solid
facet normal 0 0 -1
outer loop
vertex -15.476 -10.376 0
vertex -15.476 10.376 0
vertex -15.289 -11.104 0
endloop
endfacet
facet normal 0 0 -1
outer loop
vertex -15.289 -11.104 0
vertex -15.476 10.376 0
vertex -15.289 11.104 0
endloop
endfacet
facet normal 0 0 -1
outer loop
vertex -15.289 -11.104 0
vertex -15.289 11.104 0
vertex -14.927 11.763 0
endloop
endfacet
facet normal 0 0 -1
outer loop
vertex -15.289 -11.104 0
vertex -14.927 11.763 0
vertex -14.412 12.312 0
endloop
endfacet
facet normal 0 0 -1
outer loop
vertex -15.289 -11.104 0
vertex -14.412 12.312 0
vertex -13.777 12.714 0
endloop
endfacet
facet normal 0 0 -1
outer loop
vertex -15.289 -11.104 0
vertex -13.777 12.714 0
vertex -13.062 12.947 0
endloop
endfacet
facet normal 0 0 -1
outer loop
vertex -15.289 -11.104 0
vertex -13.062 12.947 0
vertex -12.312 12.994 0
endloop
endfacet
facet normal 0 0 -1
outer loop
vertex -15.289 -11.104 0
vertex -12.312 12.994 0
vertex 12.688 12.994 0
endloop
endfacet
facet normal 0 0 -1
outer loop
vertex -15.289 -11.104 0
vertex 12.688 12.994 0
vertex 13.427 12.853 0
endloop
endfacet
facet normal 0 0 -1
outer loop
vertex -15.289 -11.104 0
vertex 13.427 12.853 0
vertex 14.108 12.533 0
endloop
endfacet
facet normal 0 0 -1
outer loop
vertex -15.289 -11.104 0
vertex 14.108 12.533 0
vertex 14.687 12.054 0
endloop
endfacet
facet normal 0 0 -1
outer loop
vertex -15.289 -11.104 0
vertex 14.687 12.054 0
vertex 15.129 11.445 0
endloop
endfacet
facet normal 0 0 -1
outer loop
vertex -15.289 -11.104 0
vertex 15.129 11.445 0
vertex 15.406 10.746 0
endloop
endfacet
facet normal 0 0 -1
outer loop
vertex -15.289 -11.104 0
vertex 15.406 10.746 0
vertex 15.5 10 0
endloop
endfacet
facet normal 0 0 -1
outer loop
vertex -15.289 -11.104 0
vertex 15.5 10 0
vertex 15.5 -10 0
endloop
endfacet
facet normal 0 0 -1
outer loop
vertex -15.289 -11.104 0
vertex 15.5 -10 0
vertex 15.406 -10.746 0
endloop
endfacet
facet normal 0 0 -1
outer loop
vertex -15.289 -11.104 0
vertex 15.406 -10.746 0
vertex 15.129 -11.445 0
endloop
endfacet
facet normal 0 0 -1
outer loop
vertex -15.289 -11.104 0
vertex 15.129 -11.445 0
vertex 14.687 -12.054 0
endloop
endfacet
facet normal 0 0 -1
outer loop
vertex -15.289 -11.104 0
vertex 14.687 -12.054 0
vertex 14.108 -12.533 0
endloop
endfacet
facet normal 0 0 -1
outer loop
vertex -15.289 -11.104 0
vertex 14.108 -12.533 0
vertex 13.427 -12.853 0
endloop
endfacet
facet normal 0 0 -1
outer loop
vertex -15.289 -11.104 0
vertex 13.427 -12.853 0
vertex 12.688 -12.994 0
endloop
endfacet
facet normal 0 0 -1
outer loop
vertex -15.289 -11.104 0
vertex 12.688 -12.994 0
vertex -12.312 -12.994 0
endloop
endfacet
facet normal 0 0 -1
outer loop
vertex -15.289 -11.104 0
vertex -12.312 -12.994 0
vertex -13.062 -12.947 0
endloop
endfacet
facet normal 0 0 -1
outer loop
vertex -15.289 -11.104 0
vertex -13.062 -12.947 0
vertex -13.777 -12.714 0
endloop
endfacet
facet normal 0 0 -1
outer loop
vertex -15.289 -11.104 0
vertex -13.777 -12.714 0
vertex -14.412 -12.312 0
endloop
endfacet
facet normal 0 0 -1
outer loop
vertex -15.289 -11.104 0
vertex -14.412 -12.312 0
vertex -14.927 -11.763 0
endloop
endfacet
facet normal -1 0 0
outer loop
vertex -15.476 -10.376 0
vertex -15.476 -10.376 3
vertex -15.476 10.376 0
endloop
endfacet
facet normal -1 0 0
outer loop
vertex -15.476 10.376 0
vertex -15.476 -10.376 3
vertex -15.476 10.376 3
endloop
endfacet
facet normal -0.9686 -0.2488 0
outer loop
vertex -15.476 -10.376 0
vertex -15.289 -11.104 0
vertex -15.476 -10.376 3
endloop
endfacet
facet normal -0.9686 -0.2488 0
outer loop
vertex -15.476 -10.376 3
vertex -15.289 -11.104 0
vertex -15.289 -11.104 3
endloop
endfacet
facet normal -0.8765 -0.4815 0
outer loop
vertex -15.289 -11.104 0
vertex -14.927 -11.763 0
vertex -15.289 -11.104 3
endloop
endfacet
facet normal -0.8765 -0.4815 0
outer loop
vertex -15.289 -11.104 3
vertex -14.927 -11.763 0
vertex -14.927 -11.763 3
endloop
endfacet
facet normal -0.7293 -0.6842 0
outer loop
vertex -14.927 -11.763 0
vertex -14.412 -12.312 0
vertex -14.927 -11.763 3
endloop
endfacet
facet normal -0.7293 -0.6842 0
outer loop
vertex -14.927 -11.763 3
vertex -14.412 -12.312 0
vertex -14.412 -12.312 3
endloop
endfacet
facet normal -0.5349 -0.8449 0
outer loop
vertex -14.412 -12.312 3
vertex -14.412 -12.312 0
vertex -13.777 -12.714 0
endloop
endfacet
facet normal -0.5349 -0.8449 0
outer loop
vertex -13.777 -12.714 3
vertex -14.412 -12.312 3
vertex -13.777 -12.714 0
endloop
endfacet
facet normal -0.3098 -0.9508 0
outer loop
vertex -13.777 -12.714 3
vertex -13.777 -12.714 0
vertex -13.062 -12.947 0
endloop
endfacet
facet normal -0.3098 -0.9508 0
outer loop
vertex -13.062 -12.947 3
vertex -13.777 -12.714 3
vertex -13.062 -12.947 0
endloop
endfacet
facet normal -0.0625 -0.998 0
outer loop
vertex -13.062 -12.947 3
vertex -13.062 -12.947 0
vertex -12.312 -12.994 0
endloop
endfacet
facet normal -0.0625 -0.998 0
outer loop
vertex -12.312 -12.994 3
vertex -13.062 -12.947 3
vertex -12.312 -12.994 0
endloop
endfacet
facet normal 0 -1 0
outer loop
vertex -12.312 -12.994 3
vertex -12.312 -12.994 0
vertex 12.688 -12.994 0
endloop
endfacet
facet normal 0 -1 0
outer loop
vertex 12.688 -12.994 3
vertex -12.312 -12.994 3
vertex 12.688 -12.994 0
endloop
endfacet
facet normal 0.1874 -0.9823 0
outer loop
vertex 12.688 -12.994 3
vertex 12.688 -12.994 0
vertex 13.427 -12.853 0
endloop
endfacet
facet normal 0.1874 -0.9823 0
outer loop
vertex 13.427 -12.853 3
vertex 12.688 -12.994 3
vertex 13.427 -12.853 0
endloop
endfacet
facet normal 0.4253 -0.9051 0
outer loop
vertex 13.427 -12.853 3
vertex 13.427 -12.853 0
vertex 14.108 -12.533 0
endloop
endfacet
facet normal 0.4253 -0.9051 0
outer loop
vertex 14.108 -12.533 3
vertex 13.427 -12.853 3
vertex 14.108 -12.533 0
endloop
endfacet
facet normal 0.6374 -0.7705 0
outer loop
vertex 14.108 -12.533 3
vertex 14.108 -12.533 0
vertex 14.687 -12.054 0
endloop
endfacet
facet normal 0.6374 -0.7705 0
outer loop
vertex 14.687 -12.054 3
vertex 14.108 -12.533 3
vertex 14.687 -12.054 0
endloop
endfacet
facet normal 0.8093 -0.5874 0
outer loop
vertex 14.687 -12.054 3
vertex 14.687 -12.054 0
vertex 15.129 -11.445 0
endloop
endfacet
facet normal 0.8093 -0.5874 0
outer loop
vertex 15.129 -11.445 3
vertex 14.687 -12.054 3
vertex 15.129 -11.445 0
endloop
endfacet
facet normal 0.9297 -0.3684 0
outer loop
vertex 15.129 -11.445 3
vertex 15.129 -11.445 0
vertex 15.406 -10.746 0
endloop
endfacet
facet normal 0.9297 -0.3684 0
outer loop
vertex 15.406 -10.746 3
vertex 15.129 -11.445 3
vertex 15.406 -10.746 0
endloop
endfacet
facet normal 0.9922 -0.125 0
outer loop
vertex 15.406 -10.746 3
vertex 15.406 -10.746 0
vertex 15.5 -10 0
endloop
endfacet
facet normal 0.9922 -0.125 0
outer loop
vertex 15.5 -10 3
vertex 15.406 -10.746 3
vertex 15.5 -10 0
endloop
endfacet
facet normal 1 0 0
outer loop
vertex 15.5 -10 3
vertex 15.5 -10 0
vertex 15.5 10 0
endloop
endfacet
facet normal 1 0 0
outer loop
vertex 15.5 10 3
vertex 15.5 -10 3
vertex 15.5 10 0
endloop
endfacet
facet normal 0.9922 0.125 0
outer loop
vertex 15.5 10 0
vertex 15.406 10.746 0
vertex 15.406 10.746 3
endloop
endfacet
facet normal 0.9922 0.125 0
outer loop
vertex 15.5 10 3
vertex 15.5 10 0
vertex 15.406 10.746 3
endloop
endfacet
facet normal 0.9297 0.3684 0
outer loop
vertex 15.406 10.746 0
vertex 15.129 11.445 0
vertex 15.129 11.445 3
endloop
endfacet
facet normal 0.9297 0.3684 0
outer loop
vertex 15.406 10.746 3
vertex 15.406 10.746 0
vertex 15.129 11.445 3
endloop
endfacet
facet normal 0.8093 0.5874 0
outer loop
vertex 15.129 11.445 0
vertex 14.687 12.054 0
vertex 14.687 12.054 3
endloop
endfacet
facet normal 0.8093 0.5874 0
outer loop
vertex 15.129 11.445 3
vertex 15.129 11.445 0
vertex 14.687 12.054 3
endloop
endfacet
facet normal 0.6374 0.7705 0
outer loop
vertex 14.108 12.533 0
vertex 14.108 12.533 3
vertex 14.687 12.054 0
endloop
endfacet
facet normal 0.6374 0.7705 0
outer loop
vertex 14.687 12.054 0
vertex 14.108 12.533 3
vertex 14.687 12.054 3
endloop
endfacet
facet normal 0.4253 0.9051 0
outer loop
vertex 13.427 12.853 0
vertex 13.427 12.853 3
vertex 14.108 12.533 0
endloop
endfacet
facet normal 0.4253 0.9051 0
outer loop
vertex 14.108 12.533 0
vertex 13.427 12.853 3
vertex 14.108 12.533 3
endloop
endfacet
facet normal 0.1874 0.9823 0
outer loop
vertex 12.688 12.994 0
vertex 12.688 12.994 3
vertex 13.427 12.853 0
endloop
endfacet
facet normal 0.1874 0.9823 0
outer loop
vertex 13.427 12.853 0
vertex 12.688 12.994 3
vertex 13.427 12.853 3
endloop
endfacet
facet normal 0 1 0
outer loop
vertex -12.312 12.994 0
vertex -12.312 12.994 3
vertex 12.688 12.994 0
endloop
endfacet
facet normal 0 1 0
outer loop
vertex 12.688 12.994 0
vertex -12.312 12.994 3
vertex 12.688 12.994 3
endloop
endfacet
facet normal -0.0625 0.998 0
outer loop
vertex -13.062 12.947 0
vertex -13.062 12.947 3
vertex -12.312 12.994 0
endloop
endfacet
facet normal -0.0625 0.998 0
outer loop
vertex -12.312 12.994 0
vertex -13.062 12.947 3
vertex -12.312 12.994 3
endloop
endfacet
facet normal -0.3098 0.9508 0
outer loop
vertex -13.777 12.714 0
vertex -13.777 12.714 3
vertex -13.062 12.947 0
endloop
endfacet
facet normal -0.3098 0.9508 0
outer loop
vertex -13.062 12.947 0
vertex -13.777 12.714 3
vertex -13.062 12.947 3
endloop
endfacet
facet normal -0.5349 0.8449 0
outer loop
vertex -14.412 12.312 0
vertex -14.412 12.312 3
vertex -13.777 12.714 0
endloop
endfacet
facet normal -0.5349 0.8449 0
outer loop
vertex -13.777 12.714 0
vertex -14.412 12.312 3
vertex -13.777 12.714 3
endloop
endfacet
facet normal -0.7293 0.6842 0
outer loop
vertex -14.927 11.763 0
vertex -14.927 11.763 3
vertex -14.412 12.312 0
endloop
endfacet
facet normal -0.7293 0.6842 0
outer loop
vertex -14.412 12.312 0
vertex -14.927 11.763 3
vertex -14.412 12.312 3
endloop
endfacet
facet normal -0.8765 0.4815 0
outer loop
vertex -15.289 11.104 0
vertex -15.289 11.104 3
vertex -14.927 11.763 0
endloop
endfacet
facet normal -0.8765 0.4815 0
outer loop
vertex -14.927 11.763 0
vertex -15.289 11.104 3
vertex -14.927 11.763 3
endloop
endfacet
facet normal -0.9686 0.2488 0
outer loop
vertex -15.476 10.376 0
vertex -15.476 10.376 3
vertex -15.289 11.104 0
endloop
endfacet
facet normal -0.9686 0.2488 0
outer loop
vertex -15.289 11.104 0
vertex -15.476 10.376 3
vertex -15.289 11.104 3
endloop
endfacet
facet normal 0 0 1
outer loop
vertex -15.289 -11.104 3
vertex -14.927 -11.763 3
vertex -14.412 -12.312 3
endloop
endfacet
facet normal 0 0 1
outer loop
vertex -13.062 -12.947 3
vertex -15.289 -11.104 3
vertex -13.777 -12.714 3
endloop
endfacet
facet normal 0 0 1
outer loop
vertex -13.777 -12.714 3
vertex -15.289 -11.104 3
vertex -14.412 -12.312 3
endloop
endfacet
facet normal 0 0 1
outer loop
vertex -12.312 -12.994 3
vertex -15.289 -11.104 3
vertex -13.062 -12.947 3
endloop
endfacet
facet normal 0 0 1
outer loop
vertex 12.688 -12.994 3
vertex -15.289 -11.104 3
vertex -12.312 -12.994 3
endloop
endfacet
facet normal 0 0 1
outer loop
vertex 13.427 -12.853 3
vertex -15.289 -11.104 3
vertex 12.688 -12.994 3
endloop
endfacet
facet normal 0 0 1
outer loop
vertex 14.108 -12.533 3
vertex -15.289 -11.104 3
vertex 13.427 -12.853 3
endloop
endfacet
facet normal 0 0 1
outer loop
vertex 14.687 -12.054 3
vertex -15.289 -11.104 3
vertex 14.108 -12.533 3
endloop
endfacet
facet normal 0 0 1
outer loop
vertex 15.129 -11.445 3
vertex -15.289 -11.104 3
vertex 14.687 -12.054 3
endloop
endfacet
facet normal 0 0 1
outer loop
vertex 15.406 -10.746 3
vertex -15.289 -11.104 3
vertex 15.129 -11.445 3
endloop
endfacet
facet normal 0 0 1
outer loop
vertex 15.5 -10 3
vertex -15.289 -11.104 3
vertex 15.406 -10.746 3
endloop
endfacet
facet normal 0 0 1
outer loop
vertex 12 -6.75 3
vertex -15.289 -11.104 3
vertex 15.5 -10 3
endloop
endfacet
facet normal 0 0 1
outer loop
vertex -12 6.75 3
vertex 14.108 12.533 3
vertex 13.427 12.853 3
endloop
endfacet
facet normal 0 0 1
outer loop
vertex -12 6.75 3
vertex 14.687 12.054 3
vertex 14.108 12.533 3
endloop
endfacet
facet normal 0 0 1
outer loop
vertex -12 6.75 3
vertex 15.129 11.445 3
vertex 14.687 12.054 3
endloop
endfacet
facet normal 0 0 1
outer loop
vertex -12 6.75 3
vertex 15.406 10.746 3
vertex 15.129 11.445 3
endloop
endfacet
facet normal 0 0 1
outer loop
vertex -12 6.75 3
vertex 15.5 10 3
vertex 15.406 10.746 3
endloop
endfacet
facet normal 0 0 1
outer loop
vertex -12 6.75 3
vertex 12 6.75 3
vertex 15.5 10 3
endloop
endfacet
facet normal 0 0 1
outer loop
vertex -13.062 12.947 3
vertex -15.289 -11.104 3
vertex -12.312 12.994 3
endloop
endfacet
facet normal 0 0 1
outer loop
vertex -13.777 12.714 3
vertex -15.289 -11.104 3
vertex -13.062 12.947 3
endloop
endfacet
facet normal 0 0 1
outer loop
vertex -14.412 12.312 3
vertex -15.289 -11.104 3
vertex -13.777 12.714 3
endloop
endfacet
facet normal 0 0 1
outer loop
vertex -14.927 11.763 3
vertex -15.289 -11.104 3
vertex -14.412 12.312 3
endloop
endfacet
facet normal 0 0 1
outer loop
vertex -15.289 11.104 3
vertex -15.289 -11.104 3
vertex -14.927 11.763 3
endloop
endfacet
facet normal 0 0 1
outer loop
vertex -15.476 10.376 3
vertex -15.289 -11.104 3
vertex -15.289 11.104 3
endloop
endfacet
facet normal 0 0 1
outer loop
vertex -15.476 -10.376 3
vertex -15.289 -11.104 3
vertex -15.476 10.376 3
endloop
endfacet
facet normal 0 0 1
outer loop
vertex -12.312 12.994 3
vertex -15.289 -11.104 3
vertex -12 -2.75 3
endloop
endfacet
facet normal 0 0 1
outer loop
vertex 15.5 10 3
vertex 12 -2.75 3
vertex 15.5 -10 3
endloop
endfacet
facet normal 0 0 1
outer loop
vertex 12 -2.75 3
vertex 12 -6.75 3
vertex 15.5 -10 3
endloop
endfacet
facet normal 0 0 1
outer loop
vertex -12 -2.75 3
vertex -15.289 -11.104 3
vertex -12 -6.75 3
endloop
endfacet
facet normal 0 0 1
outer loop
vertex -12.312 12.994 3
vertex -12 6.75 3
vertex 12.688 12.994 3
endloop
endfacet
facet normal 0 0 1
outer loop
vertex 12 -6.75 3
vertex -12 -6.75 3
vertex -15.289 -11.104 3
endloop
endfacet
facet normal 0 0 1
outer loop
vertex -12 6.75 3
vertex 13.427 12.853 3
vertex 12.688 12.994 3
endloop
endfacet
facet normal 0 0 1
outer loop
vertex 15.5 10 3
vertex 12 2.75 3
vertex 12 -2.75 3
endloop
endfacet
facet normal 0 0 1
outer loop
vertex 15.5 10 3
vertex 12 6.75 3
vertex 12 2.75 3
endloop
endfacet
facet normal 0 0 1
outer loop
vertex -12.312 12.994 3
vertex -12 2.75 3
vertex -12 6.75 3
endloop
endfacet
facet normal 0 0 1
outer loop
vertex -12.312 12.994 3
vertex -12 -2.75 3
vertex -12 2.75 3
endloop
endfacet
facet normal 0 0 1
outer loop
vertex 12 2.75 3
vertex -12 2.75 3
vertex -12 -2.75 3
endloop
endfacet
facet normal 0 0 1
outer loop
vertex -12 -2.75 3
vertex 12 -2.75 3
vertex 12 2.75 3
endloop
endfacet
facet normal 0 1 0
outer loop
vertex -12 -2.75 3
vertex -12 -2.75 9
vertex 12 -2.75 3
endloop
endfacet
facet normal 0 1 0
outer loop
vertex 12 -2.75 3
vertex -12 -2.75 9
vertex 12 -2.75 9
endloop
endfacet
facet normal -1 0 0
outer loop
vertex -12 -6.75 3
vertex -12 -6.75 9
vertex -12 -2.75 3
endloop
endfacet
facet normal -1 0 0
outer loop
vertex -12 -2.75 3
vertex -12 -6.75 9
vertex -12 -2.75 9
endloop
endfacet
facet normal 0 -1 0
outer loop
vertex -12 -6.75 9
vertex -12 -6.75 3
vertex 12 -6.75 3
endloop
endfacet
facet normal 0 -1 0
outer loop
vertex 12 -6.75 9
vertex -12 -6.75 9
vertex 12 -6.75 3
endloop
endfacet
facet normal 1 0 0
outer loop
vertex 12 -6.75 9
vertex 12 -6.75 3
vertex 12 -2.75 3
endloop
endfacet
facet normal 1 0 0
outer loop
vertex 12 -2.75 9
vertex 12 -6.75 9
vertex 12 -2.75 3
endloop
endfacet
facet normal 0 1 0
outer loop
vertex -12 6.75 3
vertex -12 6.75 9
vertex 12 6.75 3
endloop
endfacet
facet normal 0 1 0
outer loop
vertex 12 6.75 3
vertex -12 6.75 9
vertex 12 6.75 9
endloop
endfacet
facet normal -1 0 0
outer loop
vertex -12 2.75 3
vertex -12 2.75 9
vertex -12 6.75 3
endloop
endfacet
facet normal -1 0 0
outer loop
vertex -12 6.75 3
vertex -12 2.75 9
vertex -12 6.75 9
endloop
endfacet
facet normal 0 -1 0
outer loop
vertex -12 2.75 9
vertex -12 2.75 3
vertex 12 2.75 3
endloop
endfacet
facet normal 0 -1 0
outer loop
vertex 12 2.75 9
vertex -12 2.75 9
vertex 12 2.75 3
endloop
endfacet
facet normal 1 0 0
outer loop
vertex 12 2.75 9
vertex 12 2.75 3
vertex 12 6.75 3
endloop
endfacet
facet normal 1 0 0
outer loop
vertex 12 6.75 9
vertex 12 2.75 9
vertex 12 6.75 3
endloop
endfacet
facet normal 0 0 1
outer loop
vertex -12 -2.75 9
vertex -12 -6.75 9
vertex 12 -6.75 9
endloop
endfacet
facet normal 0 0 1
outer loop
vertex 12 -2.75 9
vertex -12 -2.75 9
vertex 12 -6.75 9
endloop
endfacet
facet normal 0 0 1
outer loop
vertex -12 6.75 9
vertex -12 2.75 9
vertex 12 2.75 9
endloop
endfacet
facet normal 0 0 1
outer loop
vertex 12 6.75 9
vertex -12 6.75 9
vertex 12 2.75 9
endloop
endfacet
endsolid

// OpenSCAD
// Created by J.Rodigo (www.jra.so) 
// Based on the idea of Pedro Lahuerta (http://goo.gl/D9cUYG)
// Licence Creative commons atribution & share alike.

// The parameters of the base
rPad = 3 ;	// Round
xPad = 25 ;	// Width
yPad = 20 ;	// Length
hPad = 3 ;	// Height

// The parameters of the hook
hHook = 6 ;		// Height
xHook = 24 ;	// Width (one hook)
yHook = 4 ;		// Length (one hook)
sHook = 5.5 ; // Space between hooks

// Gap between the hooks (0 to disable)
GapHooks = 0 ;

// Cylinder resolution
$fn = 25 ; 

module base(){
	hull(){
		translate([xPad/2,yPad/2,0])
		cylinder(h = hPad, r = rPad, center = true);
		translate([-xPad/2,yPad/2,0])
		cylinder(h = hPad, r = rPad, center = true);
		translate([xPad/2,-yPad/2,0])
		cylinder(h = hPad, r = rPad, center = true);
		translate([-xPad/2,-yPad/2,0])
		cylinder(h = hPad, r = rPad, center = true);
	}
}

module hook(){
	difference(){
		// Hooks
		union(){
			translate([0,(yHook+sHook)/2,0])
			cube(size = [xHook,yHook,hHook], center = true);
			translate([0,-(yHook+sHook)/2,0])
			cube(size = [xHook,yHook,hHook], center = true);
		}
		// Gap between the hooks
		cube(size = [GapHooks,2*yHook+sHook+1,hHook+1], center = true);
	}
}

module AntiPad(){
	translate([0,0,hPad+(hHook/2)])
	hook();
	translate([0,0,hPad/2])
	base();
}

// ¡ ¡ ¡ Generate the piece ! ! !

	AntiPad();
